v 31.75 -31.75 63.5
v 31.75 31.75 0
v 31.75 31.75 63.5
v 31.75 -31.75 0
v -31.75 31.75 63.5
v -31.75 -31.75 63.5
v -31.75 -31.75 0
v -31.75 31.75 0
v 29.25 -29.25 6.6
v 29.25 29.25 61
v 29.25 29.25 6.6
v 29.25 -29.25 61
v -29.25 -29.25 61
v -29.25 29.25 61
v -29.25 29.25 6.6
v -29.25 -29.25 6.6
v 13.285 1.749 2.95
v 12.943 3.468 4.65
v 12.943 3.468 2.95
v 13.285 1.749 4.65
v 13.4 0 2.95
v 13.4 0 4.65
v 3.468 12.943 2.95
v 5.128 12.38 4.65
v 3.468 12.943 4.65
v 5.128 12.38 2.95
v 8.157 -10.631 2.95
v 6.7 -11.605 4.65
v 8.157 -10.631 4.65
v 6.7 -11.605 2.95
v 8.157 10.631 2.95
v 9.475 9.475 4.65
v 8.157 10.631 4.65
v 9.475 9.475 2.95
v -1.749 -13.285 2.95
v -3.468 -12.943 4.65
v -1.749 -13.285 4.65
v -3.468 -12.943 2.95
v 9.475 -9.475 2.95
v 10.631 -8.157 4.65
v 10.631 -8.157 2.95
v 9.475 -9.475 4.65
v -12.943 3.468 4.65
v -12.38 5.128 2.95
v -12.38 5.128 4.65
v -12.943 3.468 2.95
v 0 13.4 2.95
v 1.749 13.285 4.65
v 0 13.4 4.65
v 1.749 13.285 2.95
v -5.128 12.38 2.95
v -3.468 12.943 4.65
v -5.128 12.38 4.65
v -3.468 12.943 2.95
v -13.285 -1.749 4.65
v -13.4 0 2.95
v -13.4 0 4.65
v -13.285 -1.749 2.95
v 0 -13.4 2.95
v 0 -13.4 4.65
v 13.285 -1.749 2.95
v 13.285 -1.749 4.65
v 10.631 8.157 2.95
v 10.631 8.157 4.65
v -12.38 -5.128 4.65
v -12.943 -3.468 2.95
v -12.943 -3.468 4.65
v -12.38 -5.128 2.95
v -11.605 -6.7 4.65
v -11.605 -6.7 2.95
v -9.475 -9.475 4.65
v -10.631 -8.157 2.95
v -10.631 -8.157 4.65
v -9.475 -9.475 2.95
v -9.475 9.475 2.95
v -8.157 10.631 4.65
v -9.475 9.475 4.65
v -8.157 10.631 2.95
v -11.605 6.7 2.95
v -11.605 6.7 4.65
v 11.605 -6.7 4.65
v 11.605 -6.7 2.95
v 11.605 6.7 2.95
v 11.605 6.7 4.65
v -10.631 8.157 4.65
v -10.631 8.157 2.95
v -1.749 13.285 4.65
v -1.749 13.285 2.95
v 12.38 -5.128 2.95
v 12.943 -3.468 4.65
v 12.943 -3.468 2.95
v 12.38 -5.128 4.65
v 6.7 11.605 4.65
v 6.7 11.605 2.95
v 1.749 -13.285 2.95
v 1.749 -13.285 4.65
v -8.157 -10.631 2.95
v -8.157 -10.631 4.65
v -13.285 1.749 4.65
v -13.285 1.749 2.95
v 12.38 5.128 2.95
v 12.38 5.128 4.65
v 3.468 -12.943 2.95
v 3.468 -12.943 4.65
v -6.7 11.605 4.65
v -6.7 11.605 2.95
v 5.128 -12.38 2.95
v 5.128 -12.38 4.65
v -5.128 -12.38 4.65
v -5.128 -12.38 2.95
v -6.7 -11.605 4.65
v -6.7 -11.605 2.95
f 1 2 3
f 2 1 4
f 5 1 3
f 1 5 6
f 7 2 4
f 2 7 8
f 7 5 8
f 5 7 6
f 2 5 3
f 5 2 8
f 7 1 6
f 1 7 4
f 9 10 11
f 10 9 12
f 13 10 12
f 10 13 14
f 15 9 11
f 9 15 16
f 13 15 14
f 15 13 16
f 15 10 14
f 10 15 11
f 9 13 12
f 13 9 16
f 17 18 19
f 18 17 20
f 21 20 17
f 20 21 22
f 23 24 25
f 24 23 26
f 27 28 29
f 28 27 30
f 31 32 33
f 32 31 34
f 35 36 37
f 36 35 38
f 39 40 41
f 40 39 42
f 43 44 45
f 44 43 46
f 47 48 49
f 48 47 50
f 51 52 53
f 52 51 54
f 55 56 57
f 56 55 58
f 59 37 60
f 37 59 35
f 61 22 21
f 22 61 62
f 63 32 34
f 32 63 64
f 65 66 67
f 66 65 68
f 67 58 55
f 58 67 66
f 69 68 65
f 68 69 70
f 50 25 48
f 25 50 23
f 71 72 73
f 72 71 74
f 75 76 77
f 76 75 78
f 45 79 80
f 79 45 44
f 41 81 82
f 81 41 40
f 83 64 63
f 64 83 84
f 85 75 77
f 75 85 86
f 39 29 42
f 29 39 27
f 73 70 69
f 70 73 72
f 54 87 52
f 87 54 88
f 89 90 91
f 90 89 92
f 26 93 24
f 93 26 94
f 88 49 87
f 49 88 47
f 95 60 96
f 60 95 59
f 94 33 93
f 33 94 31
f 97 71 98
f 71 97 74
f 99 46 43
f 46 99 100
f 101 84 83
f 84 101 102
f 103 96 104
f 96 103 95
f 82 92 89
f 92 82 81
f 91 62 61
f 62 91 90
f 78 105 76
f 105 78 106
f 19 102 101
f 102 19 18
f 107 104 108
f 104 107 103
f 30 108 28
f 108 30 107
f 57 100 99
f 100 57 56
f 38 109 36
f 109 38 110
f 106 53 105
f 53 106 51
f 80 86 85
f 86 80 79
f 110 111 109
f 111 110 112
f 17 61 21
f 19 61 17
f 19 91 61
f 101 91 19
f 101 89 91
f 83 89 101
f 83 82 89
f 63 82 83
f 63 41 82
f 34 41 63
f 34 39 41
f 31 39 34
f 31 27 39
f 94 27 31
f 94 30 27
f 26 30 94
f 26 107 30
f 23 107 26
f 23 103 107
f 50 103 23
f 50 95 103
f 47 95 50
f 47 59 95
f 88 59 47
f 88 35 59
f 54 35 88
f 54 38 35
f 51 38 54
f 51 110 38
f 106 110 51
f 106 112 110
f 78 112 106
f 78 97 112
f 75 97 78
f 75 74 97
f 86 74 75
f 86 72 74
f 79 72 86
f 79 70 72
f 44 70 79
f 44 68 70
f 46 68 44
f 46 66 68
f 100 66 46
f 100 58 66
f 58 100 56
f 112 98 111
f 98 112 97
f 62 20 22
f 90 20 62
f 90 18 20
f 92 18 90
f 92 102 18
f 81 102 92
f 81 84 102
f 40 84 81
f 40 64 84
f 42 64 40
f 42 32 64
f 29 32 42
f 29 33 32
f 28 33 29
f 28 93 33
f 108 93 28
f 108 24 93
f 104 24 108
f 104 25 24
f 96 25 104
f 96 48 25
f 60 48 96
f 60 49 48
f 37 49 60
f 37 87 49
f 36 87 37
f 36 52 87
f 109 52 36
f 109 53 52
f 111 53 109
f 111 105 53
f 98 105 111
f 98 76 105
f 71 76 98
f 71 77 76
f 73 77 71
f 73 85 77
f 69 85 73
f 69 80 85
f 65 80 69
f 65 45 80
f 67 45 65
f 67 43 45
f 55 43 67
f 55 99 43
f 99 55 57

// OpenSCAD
// Minecraft Block — Hollow cube with NFC tag cavity at bottom
// Print upright. Bottom is solid with tag pocket (pause-at-layer to insert).
// Above the tag: a few solid layers seal it in, then hollow walls to the top.
//
// Open in OpenSCAD → F5 preview → F6 render → F7 export STL

// ============================================================
// PARAMETERS
// ============================================================

BLOCK_SIZE_IN   = 2.5;          // side length in inches
WALL_THICKNESS  = 2.5;          // mm — wall thickness (sides + top)
FLOOR_THICKNESS = 3.0;          // mm — solid bottom floor

// NFC tag (NTAG215 25mm coin) — same as item models
TAG_DIAMETER    = 26;           // mm — slightly oversized for easy drop-in
TAG_THICKNESS   = 1.2;          // mm
TAG_CLEARANCE   = 0.4;          // mm extra around the tag

// Corner rounding (0 for sharp)
CORNER_RADIUS   = 1.0;          // mm

// ============================================================
// COMPUTED
// ============================================================

IN_TO_MM = 25.4;
block_size = BLOCK_SIZE_IN * IN_TO_MM;
w = WALL_THICKNESS;
floor_h = FLOOR_THICKNESS;

cavity_d = TAG_DIAMETER + TAG_CLEARANCE * 2;
cavity_h = TAG_THICKNESS + TAG_CLEARANCE;

// The solid bottom section: floor + tag pocket + seal layers above tag
seal_layers = 2.0;  // mm of solid plastic above the tag to seal it in
solid_bottom = floor_h + cavity_h + seal_layers;

echo(str("Block: ", block_size, "mm (", BLOCK_SIZE_IN, "\")"));
echo(str("Tag cavity: ", cavity_d, "mm dia x ", cavity_h, "mm deep"));
echo(str("Solid bottom: ", solid_bottom, "mm (floor + tag + seal)"));
echo(str("PAUSE AT: ", floor_h + cavity_h, "mm to insert tag"));
echo(str("Hollow starts at: ", solid_bottom, "mm"));

// ============================================================
// MODEL
// ============================================================

module block() {
    difference() {
        // Outer cube
        translate([0, 0, block_size/2])
            cube([block_size, block_size, block_size], center=true);
        
        // Hollow interior — starts above the solid bottom, open up to the
        // underside of the top wall. Walls on all 4 sides.
        translate([0, 0, solid_bottom + (block_size - solid_bottom - w)/2])
            cube([block_size - 2*w, block_size - 2*w, block_size - solid_bottom - w], center=true);
        
        // Tag pocket — circular cavity in the solid floor area
        // Centered in XY, sits on top of the floor
        translate([0, 0, floor_h + cavity_h/2])
            cylinder(d=cavity_d, h=cavity_h + 0.1, center=true, $fn=48);
    }
}

block();

// Cross-section view (uncomment to see inside):
//difference() {
//     block();
//     translate([block_size/2, 0, 0])
//         cube([block_size, block_size*2, block_size*2], center=true);
// }
